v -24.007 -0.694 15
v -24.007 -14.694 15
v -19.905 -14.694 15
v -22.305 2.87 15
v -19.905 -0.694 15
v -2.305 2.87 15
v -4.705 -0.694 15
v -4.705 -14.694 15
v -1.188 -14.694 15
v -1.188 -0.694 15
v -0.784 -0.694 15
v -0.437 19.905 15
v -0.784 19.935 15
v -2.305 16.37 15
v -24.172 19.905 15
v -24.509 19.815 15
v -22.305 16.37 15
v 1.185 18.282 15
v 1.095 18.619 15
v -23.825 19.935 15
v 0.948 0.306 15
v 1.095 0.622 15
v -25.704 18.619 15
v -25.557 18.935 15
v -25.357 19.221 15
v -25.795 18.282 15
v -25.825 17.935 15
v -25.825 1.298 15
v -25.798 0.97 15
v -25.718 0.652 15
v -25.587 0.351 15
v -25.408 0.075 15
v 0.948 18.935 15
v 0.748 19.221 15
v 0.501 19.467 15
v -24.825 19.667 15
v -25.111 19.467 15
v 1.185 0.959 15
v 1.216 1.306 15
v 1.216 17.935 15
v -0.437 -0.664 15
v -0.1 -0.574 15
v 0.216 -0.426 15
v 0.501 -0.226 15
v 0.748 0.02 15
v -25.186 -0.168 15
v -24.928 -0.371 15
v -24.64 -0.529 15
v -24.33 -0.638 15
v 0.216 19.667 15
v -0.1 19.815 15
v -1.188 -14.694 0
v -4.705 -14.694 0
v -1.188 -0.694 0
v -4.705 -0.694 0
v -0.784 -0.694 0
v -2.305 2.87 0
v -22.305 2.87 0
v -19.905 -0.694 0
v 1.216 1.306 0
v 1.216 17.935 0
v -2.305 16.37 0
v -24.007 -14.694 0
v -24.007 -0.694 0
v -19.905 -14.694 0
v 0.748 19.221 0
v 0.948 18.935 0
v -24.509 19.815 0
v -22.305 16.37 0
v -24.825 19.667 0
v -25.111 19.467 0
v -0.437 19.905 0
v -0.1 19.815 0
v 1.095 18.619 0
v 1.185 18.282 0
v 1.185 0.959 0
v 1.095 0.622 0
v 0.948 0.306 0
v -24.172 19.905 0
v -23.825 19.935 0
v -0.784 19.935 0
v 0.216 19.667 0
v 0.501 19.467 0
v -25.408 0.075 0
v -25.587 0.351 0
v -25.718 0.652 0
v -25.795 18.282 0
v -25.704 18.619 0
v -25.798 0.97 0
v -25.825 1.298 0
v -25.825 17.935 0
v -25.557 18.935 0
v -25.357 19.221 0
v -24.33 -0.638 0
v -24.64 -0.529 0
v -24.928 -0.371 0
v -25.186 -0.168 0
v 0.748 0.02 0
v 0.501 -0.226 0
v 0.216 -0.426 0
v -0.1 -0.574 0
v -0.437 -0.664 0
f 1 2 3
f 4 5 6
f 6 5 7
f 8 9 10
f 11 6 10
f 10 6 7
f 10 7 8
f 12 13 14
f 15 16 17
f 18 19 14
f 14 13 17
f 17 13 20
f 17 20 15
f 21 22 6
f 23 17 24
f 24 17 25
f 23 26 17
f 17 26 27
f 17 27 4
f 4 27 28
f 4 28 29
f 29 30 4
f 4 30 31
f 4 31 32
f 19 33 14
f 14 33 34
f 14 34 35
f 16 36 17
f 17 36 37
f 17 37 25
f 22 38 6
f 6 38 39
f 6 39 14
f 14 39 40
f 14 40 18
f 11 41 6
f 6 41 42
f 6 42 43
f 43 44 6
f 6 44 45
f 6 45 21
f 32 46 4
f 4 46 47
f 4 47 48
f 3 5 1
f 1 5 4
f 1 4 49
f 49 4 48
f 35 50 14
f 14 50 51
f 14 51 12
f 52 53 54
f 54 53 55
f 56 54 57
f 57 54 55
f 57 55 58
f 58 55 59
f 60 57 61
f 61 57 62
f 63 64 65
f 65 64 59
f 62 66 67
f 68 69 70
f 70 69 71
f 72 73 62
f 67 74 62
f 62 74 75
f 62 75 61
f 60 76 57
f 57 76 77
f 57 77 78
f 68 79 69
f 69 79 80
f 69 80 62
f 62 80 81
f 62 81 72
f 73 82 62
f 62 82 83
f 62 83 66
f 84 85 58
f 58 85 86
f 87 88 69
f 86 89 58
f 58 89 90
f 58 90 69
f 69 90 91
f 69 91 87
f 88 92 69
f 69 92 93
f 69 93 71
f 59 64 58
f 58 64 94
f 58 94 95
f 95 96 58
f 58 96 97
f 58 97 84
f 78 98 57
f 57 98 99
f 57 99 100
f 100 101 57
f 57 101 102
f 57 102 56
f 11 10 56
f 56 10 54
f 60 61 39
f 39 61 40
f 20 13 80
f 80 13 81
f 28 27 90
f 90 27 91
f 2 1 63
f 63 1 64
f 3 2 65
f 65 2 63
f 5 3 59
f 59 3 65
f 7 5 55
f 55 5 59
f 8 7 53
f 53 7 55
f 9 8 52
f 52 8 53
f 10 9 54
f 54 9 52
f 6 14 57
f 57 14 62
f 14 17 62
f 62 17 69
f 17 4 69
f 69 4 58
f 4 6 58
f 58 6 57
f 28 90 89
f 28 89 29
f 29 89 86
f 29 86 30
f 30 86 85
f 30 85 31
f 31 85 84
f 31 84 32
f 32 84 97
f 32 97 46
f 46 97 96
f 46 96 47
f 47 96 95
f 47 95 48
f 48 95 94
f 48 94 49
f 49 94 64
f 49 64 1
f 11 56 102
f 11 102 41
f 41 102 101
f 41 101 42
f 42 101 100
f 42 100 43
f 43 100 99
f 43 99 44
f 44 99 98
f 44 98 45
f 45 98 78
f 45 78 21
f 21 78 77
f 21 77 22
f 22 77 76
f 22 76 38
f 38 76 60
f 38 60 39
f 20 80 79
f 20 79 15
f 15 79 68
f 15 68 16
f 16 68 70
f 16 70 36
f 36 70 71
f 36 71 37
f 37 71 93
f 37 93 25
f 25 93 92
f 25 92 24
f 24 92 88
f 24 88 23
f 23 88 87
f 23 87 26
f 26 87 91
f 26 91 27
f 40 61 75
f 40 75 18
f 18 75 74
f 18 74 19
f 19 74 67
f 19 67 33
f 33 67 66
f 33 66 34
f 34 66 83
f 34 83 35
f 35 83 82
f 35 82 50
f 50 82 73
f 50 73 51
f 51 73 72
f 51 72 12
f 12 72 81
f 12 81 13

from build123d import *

# Parameters (mm, degrees)
SKETCH1_W           = 20
SKETCH1_H           = 13.5
BOSS_EXTRUDE1_DEPTH = 15
FILLET1_R           = 2


with BuildPart() as part:
    # Sketch1 → Boss-Extrude1 (new body)
    with BuildSketch(Plane.XY):
        Polygon((-25.825109991, 19.935146109), (1.215675598, 19.935146109), (1.215675598, -0.694178906), (-1.188139158, -0.694178906), (-1.188139158, -14.694178906), (-1.542833918, -14.694178906), (-4.704717196, -14.694178906), (-4.704717196, -0.694178906), (-19.904717196, -0.694178906), (-19.904717196, -14.694178906), (-24.006835368, -14.694178906), (-24.006835368, -0.694178906), (-25.825109991, -0.694178906), align=None)
        with Locations((-12.304717196, 9.620483601)):
            Rectangle(SKETCH1_W, SKETCH1_H, mode=Mode.SUBTRACT)
    extrude(amount=BOSS_EXTRUDE1_DEPTH)

    # Fillet1
    # the kernel refuses this fillet: 2 mm, written as the material it takes off along each edge
    with BuildSketch(Plane(origin=(-25.825109991, -0.694178906, -4.979317152), x_dir=(1, 0, 0), z_dir=(0, 0, 1))) as fillet1_piece_1:
        with BuildLine():
            CenterArc((2, 1.991726861), FILLET1_R, 180, 84.786761144)
            Line((0, 1.991726861), (-0.04, 1.991726861))
            Line((-0.04, 1.991726861), (-0.04, 0))
            Line((-0.04, 0), (0, -0.04))
            ThreePointArc((0, -0.04), (0.909137312, -0.04), (1.814640116, -0.039834537))
            Line((1.814640116, -0.039834537), (1.818274623, 0))
        make_face()
    extrude(amount=24.958634303, mode=Mode.SUBTRACT)
    with BuildSketch(Plane(origin=(-25.825109991, 19.935146109, -5), x_dir=(1, 0, 0), z_dir=(0, 0, 1)), Plane(origin=(1.215675598, -0.694178906, -5), x_dir=(-1, 0, 0), z_dir=(0, 0, 1))) as fillet1_piece_2:
        with BuildLine():
            CenterArc((FILLET1_R, -FILLET1_R), FILLET1_R, 90, 90)
            Line((0, -FILLET1_R), (-FILLET1_R * 0.02, -FILLET1_R))
            Line((-FILLET1_R * 0.02, -FILLET1_R), (-FILLET1_R * 0.02, FILLET1_R * 0.02))
            Line((-FILLET1_R * 0.02, FILLET1_R * 0.02), (FILLET1_R, FILLET1_R * 0.02))
            Line((FILLET1_R, FILLET1_R * 0.02), (FILLET1_R, 0))
        make_face()
    extrude(amount=25, mode=Mode.SUBTRACT)
    with BuildSketch(Plane(origin=(1.215675598, 19.935146109, -5), x_dir=(-1, 0, 0), z_dir=(0, 0, 1))) as fillet1_piece_3:
        with BuildLine():
            CenterArc((FILLET1_R, FILLET1_R), FILLET1_R, 180, 90)
            Line((0, FILLET1_R), (-FILLET1_R * 0.02, FILLET1_R))
            Line((-FILLET1_R * 0.02, FILLET1_R), (-FILLET1_R * 0.02, -FILLET1_R * 0.02))
            Line((-FILLET1_R * 0.02, -FILLET1_R * 0.02), (FILLET1_R, -FILLET1_R * 0.02))
            Line((FILLET1_R, -FILLET1_R * 0.02), (FILLET1_R, 0))
        make_face()
    extrude(amount=25, mode=Mode.SUBTRACT)


solid = part.part
